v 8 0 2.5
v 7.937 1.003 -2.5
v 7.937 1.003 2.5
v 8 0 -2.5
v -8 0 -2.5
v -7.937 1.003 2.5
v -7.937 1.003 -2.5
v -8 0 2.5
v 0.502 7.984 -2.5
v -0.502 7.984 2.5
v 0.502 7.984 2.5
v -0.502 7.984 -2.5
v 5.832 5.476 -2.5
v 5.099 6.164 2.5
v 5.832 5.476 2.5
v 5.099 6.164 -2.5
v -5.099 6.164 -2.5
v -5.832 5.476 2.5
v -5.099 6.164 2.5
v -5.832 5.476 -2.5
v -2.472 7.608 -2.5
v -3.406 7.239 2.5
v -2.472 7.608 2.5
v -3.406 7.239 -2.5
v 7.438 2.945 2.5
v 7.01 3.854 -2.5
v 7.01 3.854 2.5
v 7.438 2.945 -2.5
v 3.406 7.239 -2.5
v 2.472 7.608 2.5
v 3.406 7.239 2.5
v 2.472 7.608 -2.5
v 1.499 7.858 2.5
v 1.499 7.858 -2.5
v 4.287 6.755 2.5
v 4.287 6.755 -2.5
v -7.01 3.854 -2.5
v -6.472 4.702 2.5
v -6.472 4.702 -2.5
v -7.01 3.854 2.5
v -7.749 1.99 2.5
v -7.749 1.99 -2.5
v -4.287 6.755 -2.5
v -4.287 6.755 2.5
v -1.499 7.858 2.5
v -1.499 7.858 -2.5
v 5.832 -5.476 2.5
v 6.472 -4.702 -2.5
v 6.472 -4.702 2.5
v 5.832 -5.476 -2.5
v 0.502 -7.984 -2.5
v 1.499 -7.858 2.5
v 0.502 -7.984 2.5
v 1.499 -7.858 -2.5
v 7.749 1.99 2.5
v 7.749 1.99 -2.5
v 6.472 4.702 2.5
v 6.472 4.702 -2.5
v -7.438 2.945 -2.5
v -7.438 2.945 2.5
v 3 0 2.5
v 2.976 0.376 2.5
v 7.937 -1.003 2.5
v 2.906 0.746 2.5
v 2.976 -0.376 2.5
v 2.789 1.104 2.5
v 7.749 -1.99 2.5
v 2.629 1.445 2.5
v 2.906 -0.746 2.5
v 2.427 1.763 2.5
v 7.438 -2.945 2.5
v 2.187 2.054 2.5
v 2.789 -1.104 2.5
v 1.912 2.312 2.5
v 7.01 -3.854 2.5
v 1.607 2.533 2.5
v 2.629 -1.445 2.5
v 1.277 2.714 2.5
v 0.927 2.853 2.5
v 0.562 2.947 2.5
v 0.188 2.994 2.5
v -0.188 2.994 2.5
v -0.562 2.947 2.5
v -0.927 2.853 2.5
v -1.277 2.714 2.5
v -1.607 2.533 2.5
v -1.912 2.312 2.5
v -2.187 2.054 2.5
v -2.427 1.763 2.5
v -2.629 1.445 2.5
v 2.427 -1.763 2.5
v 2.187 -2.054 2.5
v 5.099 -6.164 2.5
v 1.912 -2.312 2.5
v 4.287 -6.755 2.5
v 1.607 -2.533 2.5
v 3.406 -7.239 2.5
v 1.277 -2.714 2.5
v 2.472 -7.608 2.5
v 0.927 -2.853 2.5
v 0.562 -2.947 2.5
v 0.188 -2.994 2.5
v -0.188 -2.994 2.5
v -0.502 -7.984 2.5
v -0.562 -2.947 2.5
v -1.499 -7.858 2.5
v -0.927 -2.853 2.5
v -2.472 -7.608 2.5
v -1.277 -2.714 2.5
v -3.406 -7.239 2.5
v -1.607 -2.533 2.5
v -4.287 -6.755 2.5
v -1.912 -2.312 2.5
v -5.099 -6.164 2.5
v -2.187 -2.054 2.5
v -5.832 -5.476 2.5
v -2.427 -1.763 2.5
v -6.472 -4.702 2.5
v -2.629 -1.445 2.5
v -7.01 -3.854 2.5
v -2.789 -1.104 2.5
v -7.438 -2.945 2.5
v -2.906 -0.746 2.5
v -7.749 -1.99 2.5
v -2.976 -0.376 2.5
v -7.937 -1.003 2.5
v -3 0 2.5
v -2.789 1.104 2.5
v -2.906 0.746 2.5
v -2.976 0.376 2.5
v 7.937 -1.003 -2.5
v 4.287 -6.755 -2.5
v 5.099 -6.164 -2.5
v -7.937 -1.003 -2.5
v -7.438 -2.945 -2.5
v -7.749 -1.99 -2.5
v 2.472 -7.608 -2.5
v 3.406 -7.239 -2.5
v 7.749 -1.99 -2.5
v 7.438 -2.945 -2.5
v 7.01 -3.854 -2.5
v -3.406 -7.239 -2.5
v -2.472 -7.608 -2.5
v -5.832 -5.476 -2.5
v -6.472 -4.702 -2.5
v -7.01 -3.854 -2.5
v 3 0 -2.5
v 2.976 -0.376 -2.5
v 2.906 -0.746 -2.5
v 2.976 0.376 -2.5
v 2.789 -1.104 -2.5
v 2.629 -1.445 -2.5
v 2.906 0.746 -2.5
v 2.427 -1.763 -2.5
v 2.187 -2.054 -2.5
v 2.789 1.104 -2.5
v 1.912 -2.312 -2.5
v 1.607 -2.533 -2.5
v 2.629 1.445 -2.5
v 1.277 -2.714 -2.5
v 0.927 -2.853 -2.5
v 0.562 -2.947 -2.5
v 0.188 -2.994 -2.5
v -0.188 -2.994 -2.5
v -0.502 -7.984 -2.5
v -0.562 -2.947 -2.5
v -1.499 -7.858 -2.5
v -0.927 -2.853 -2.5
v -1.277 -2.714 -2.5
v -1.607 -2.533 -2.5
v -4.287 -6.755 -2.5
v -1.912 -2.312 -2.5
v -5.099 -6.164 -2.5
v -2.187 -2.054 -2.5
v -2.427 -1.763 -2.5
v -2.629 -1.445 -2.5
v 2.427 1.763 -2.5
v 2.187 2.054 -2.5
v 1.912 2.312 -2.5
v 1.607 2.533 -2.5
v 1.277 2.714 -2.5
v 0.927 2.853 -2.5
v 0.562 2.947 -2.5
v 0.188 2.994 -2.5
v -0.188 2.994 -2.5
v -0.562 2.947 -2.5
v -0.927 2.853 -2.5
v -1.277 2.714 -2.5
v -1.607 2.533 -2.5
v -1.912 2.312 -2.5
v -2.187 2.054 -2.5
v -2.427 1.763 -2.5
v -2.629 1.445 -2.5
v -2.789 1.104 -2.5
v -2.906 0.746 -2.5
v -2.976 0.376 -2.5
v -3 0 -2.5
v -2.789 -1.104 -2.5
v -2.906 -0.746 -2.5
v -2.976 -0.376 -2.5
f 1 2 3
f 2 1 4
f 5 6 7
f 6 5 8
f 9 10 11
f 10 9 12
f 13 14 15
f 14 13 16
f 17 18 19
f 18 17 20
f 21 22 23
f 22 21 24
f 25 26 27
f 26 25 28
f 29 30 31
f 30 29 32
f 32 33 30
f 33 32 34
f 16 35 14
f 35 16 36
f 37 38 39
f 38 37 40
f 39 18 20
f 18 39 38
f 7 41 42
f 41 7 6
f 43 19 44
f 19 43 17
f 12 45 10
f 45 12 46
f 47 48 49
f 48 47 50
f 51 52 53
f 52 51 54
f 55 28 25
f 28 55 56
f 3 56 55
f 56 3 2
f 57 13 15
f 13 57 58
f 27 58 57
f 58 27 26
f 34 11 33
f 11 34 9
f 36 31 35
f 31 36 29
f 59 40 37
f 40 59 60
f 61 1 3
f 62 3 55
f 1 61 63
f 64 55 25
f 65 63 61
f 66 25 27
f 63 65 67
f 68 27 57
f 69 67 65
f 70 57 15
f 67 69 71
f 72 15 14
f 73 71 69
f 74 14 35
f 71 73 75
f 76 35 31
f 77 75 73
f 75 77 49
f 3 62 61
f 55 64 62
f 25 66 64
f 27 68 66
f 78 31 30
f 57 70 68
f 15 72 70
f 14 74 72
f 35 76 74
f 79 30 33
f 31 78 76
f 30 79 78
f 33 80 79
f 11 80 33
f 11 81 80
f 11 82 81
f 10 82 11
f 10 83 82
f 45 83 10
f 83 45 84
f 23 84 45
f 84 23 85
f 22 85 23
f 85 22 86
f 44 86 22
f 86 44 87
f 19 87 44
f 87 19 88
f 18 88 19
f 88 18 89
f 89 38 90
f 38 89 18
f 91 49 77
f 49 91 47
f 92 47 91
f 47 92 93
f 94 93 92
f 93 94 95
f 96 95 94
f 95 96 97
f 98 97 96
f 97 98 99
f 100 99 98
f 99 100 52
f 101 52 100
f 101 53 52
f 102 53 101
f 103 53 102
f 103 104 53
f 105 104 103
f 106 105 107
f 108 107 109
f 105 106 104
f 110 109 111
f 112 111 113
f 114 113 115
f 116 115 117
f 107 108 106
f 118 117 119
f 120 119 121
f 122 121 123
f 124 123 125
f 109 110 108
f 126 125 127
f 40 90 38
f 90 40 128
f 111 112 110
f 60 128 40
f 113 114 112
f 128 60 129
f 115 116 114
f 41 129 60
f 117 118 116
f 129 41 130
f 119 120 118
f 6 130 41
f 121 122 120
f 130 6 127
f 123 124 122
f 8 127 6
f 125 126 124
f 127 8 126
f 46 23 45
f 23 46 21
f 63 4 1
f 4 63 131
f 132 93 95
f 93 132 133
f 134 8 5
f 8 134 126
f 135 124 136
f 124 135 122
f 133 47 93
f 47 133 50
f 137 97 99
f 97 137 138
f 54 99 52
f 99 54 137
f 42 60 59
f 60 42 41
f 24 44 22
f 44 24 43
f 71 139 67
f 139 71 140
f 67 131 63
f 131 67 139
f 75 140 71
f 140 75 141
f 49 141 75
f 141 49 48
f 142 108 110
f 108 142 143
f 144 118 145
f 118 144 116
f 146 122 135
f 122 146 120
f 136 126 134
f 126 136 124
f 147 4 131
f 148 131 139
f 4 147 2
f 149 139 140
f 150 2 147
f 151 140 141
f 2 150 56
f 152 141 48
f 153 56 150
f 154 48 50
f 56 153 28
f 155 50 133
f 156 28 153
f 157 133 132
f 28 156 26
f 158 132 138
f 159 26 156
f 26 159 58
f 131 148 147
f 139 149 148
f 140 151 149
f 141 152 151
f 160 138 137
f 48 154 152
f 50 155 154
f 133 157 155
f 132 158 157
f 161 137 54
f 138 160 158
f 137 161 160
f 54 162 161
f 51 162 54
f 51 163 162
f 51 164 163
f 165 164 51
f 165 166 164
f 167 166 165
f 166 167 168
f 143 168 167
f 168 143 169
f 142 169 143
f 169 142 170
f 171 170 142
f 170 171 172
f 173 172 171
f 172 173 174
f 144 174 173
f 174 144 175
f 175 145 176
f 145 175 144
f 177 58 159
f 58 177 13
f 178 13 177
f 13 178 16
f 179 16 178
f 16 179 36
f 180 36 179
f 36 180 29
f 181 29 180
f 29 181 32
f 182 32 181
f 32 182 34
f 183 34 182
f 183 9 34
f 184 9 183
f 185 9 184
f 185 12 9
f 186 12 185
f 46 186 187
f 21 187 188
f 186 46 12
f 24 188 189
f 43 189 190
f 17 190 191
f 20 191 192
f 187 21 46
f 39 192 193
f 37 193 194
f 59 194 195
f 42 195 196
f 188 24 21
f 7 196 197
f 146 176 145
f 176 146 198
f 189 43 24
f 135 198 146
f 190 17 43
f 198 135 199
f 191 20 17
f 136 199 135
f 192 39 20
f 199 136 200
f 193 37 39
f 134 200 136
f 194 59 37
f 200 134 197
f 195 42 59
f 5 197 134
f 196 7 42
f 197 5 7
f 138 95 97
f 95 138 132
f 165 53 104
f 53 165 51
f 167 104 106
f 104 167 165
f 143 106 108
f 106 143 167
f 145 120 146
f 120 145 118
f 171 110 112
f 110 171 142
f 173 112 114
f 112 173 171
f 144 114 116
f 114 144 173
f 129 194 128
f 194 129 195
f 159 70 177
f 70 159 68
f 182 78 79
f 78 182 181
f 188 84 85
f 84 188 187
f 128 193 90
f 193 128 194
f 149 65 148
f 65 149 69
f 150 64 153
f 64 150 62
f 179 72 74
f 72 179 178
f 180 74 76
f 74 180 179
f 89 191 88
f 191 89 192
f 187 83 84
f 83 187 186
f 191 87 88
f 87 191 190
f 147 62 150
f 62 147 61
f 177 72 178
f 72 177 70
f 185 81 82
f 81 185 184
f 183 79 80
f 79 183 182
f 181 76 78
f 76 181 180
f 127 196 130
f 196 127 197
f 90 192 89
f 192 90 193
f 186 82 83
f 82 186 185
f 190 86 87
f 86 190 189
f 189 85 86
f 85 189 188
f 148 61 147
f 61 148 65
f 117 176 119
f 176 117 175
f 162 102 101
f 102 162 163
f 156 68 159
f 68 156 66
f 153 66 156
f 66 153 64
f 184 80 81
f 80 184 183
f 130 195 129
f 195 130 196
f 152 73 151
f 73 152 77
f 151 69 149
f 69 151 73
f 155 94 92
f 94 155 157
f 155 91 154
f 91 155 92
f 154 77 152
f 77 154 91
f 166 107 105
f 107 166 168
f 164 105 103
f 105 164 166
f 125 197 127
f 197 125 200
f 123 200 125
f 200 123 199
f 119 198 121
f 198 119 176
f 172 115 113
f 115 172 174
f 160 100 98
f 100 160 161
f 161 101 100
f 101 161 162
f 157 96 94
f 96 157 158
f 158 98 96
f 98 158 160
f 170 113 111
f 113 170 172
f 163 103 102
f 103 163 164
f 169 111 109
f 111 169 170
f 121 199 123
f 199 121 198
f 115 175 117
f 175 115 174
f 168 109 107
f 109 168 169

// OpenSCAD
$fn = 50;


difference() {
	union() {
		translate(v = [0, 0, -2.5000000000]) {
			cylinder(h = 5, r = 8.0000000000);
		}
	}
	union() {
		translate(v = [0, 0, -100.0000000000]) {
			cylinder(h = 200, r = 3.0000000000);
		}
	}
}
